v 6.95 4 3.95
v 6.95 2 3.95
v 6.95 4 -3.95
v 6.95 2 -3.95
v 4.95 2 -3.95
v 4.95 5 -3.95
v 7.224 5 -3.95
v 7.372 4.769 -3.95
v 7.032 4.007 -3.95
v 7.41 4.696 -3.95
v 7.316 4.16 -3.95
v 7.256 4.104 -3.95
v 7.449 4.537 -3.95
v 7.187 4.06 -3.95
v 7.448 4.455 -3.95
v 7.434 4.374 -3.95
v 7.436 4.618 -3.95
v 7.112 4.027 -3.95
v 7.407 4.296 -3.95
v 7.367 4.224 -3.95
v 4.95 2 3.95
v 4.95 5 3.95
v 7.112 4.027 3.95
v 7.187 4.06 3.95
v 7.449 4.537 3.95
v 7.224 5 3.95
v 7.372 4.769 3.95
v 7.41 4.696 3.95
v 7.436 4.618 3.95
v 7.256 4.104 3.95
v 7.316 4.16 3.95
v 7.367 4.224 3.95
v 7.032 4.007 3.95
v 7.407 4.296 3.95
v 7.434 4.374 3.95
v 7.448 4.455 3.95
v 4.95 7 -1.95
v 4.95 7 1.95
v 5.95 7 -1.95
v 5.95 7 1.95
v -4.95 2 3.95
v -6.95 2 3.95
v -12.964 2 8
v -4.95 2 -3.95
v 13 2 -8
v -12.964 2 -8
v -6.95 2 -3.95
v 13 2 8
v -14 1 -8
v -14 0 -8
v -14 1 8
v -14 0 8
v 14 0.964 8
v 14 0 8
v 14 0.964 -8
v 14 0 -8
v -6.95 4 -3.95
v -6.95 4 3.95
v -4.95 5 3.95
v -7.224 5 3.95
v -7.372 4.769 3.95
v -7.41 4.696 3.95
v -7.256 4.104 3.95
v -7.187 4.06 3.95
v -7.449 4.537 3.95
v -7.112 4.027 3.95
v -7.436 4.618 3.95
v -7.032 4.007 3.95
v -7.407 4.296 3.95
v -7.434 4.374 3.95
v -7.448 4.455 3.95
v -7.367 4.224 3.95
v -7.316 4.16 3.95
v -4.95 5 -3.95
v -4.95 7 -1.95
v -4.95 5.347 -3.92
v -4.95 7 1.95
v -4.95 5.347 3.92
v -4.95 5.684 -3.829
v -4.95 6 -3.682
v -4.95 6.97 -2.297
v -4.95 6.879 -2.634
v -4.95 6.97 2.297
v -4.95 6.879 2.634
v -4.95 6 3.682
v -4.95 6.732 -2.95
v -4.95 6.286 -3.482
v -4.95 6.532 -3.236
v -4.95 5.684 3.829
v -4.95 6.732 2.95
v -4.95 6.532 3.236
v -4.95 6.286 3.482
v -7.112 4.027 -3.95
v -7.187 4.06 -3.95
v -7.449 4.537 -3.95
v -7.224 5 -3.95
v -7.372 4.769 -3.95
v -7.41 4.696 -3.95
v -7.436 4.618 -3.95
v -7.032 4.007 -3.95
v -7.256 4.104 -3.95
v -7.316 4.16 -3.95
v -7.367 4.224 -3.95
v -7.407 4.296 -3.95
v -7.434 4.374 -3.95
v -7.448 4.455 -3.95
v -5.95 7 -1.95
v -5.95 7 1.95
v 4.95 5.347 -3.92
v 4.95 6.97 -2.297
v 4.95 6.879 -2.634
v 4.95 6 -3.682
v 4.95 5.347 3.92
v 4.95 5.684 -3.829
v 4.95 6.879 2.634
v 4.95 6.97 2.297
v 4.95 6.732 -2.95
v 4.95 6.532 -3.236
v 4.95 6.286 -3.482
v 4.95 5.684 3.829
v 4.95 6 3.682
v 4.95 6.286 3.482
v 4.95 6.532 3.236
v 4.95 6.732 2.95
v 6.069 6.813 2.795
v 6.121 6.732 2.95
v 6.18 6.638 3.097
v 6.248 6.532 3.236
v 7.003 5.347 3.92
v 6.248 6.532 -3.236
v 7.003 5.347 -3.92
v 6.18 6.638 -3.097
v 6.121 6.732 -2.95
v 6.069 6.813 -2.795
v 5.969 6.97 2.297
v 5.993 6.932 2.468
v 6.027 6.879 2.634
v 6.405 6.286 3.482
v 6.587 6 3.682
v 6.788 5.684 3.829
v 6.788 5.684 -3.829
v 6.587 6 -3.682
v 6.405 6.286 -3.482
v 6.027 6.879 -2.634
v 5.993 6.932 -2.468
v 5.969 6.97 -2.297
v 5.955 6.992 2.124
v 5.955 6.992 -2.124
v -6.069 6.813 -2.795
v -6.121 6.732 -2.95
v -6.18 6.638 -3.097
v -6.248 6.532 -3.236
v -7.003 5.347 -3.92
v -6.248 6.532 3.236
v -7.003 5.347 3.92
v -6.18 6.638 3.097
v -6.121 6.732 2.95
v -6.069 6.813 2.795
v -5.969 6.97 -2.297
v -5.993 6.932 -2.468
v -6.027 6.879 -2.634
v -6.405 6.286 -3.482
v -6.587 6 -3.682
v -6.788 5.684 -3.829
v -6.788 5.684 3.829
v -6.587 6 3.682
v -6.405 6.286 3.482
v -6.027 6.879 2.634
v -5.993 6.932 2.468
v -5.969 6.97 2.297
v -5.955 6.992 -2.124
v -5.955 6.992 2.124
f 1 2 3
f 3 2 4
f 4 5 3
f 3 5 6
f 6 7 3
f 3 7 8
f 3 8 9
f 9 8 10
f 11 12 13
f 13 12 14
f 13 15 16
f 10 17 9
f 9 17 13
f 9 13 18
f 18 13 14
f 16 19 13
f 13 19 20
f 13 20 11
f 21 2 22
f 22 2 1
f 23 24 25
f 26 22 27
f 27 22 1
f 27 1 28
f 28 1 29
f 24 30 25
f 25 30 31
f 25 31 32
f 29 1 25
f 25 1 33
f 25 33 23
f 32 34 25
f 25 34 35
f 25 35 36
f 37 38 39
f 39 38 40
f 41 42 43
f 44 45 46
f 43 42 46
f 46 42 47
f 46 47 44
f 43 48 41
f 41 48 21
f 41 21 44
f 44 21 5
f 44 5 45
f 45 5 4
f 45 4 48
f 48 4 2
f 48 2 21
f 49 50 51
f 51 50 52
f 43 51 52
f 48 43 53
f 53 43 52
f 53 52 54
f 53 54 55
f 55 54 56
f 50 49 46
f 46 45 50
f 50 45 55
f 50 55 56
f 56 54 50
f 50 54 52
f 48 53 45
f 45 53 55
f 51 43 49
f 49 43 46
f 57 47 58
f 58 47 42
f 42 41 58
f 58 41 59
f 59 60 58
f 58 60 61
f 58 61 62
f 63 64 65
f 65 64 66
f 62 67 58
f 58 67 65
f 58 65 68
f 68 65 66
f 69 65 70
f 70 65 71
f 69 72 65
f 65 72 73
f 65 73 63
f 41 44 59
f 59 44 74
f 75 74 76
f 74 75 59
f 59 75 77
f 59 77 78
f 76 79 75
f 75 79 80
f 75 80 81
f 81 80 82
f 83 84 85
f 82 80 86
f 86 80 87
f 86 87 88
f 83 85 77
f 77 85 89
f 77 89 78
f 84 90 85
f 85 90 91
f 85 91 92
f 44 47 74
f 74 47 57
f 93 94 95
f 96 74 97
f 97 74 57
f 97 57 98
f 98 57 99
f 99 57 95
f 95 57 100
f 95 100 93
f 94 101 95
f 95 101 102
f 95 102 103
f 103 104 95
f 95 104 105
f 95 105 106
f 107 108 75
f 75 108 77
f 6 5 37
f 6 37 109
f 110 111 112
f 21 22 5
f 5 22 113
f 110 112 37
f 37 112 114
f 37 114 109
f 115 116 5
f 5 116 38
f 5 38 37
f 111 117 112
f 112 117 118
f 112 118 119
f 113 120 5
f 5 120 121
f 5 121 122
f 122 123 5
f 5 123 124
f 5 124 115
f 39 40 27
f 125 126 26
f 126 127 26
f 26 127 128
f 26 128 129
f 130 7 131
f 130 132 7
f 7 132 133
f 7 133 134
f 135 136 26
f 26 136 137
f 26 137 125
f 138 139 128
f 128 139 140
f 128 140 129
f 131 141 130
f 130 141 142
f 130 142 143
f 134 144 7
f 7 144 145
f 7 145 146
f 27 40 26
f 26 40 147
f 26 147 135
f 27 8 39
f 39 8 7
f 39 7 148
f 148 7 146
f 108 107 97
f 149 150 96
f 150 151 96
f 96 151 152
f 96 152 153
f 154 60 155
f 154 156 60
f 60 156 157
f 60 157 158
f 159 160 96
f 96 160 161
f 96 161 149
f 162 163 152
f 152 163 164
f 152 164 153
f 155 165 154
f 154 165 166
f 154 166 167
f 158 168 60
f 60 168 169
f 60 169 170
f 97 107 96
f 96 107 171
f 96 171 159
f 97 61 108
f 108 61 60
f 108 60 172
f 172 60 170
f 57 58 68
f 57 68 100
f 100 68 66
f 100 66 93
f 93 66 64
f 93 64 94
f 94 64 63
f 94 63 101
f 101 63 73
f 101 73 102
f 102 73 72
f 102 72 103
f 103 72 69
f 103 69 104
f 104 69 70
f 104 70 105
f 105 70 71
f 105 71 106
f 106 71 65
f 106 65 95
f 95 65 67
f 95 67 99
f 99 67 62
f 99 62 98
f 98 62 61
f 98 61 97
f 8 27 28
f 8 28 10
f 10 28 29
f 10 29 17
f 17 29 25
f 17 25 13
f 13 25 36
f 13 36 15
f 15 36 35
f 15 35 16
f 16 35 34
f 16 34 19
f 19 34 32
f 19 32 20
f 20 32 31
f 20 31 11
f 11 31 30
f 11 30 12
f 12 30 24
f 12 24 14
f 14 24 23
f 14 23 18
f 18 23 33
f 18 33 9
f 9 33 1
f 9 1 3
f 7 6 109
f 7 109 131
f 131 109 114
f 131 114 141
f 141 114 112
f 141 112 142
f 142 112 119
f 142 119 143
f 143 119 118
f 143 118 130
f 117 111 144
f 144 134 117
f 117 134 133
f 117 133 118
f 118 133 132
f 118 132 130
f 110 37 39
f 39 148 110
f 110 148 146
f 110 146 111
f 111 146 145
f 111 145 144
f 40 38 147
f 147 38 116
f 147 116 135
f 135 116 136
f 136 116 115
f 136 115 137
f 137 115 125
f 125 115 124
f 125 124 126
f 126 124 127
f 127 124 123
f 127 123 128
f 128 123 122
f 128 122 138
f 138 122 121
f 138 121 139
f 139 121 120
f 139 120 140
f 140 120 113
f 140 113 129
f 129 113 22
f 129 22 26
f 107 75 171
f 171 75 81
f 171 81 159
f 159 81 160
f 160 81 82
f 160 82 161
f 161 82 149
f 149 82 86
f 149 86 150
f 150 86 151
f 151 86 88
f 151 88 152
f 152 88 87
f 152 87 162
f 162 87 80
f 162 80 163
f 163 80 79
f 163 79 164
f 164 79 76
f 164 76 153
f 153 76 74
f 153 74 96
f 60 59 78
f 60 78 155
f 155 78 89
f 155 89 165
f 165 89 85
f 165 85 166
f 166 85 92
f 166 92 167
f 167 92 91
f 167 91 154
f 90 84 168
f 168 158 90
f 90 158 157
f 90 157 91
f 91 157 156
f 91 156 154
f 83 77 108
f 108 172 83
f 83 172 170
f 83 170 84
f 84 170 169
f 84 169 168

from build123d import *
from OCP.BRepFilletAPI import BRepFilletAPI_MakeChamfer

# Parameters (mm, degrees)
SKETCH1_W           = 28
SKETCH1_H           = 16
BOSS_EXTRUDE1_DEPTH = 2
CHAMFER1_SIZE       = 1
CHAMFER1_SIZE2      = 1.035530314
SKETCH1_3_W         = 2
SKETCH1_3_H         = 7.9
BOSS_EXTRUDE2_DEPTH = 7
CUT_EXTRUDE1_DEPTH  = 20.692701694
SKETCH2_3_R         = 0.5
BOSS_EXTRUDE3_DEPTH = 7.9
FILLET1_R           = 2


with BuildPart() as part:
    # Sketch1 → Boss-Extrude1 (new body)
    with BuildSketch(Plane(origin=(0, 0, 0), x_dir=(1, 0, 0), z_dir=(0, 1, 0))):
        Rectangle(SKETCH1_W, SKETCH1_H)
    extrude(amount=BOSS_EXTRUDE1_DEPTH)

    # Chamfer1: one chamfer whose edges measure the first distance from different faces: ONE call of the kernel's chamfer builder (chamfer() names one face for all edges)
    chamfer1_edges_1 = [part.edges().sort_by_distance(p)[0] for p in [
        (14, 2, 0),
    ]]
    chamfer1_side_1 = [part.faces().sort_by_distance(p)[0] for p in [
        (0, 2, 0),
    ]]
    chamfer1_edges_2 = [part.edges().sort_by_distance(p)[0] for p in [
        (-14, 2, 0),
    ]]
    chamfer1_side_2 = [part.faces().sort_by_distance(p)[0] for p in [
        (-14, 1, 0),
    ]]
    chamfer1 = BRepFilletAPI_MakeChamfer(part.part.solid().wrapped)
    for e in chamfer1_edges_1:
        chamfer1.Add(CHAMFER1_SIZE, CHAMFER1_SIZE2, e.wrapped, chamfer1_side_1[0].wrapped)  # the first distance lies on this face
    for e in chamfer1_edges_2:
        chamfer1.Add(CHAMFER1_SIZE, CHAMFER1_SIZE2, e.wrapped, chamfer1_side_2[0].wrapped)  # the first distance lies on this face
    add(Compound.cast(chamfer1.Shape()), mode=Mode.REPLACE)

    # Sketch1<3> → Boss-Extrude2 (add)
    with BuildSketch(Plane(origin=(0, 0, 0), x_dir=(1, 0, 0), z_dir=(0, 1, 0))):
        with Locations((-5.95, 0)):
            Rectangle(SKETCH1_3_W, SKETCH1_3_H)
        with Locations((5.95, 0)):
            Rectangle(SKETCH1_3_W, SKETCH1_3_H)
    extrude(amount=BOSS_EXTRUDE2_DEPTH)

    # Sketch2 → Cut-Extrude1 (cut, through all)
    with BuildSketch(Plane.XY.offset(3.95)):
        Polygon((-6.95, 7), (-6.95, 5.430500874), (-5.95, 7), align=None)
        with BuildLine():
            Line((7.45, 4.5), (7.45, 7))
            Line((7.45, 7), (5.95, 7))
            Line((5.95, 7), (7.371681261, 4.768672504))
            ThreePointArc((7.371681261, 4.768672504), (7.430021161, 4.639927427), (7.45, 4.5))
        make_face()
    extrude(amount=-CUT_EXTRUDE1_DEPTH, mode=Mode.SUBTRACT)

    # Sketch2<3> → Boss-Extrude3 (add)
    with BuildSketch(Plane.XY.offset(3.95)):
        with BuildLine():
            ThreePointArc((-6.95, 5), (-7.190482586, 4.938369851), (-7.371681261, 4.768672504))
            ThreePointArc((-7.371681261, 4.768672504), (-7.430021161, 4.639927427), (-7.45, 4.5))
            ThreePointArc((-7.45, 4.5), (-7.303553391, 4.146446609), (-6.95, 4))
            Line((-6.95, 4), (-6.95, 5))
        make_face()
        with BuildLine():
            ThreePointArc((-6.45, 4.5), (-6.596446609, 4.853553391), (-6.95, 5))
            Line((-6.95, 5), (-6.95, 4))
            ThreePointArc((-6.95, 4), (-6.596446609, 4.146446609), (-6.45, 4.5))
        make_face()
        with BuildLine():
            Line((-6.95, 5.430500874), (-7.371681261, 4.768672504))
            ThreePointArc((-7.371681261, 4.768672504), (-7.190482586, 4.938369851), (-6.95, 5))
            Line((-6.95, 5), (-6.95, 5.430500874))
        make_face()
        with Locations((6.95, 4.5)):
            Circle(SKETCH2_3_R)
        with BuildLine():
            Line((7.371681261, 4.768672504), (5.95, 7))
            Line((5.95, 7), (5.95, 4.5))
            Line((5.95, 4.5), (6.45, 4.5))
            ThreePointArc((6.45, 4.5), (6.810072573, 4.980021161), (7.371681261, 4.768672504))
        make_face()
    extrude(amount=-BOSS_EXTRUDE3_DEPTH)

    # Fillet1
    fillet1_edges = [part.edges().sort_by_distance(p)[0] for p in [
        (5.45, 7, -3.95),
        (5.45, 7, 3.95),
        (-5.45, 7, 3.95),
        (-5.45, 7, -3.95),
    ]]
    fillet(fillet1_edges, radius=FILLET1_R)


solid = part.part
